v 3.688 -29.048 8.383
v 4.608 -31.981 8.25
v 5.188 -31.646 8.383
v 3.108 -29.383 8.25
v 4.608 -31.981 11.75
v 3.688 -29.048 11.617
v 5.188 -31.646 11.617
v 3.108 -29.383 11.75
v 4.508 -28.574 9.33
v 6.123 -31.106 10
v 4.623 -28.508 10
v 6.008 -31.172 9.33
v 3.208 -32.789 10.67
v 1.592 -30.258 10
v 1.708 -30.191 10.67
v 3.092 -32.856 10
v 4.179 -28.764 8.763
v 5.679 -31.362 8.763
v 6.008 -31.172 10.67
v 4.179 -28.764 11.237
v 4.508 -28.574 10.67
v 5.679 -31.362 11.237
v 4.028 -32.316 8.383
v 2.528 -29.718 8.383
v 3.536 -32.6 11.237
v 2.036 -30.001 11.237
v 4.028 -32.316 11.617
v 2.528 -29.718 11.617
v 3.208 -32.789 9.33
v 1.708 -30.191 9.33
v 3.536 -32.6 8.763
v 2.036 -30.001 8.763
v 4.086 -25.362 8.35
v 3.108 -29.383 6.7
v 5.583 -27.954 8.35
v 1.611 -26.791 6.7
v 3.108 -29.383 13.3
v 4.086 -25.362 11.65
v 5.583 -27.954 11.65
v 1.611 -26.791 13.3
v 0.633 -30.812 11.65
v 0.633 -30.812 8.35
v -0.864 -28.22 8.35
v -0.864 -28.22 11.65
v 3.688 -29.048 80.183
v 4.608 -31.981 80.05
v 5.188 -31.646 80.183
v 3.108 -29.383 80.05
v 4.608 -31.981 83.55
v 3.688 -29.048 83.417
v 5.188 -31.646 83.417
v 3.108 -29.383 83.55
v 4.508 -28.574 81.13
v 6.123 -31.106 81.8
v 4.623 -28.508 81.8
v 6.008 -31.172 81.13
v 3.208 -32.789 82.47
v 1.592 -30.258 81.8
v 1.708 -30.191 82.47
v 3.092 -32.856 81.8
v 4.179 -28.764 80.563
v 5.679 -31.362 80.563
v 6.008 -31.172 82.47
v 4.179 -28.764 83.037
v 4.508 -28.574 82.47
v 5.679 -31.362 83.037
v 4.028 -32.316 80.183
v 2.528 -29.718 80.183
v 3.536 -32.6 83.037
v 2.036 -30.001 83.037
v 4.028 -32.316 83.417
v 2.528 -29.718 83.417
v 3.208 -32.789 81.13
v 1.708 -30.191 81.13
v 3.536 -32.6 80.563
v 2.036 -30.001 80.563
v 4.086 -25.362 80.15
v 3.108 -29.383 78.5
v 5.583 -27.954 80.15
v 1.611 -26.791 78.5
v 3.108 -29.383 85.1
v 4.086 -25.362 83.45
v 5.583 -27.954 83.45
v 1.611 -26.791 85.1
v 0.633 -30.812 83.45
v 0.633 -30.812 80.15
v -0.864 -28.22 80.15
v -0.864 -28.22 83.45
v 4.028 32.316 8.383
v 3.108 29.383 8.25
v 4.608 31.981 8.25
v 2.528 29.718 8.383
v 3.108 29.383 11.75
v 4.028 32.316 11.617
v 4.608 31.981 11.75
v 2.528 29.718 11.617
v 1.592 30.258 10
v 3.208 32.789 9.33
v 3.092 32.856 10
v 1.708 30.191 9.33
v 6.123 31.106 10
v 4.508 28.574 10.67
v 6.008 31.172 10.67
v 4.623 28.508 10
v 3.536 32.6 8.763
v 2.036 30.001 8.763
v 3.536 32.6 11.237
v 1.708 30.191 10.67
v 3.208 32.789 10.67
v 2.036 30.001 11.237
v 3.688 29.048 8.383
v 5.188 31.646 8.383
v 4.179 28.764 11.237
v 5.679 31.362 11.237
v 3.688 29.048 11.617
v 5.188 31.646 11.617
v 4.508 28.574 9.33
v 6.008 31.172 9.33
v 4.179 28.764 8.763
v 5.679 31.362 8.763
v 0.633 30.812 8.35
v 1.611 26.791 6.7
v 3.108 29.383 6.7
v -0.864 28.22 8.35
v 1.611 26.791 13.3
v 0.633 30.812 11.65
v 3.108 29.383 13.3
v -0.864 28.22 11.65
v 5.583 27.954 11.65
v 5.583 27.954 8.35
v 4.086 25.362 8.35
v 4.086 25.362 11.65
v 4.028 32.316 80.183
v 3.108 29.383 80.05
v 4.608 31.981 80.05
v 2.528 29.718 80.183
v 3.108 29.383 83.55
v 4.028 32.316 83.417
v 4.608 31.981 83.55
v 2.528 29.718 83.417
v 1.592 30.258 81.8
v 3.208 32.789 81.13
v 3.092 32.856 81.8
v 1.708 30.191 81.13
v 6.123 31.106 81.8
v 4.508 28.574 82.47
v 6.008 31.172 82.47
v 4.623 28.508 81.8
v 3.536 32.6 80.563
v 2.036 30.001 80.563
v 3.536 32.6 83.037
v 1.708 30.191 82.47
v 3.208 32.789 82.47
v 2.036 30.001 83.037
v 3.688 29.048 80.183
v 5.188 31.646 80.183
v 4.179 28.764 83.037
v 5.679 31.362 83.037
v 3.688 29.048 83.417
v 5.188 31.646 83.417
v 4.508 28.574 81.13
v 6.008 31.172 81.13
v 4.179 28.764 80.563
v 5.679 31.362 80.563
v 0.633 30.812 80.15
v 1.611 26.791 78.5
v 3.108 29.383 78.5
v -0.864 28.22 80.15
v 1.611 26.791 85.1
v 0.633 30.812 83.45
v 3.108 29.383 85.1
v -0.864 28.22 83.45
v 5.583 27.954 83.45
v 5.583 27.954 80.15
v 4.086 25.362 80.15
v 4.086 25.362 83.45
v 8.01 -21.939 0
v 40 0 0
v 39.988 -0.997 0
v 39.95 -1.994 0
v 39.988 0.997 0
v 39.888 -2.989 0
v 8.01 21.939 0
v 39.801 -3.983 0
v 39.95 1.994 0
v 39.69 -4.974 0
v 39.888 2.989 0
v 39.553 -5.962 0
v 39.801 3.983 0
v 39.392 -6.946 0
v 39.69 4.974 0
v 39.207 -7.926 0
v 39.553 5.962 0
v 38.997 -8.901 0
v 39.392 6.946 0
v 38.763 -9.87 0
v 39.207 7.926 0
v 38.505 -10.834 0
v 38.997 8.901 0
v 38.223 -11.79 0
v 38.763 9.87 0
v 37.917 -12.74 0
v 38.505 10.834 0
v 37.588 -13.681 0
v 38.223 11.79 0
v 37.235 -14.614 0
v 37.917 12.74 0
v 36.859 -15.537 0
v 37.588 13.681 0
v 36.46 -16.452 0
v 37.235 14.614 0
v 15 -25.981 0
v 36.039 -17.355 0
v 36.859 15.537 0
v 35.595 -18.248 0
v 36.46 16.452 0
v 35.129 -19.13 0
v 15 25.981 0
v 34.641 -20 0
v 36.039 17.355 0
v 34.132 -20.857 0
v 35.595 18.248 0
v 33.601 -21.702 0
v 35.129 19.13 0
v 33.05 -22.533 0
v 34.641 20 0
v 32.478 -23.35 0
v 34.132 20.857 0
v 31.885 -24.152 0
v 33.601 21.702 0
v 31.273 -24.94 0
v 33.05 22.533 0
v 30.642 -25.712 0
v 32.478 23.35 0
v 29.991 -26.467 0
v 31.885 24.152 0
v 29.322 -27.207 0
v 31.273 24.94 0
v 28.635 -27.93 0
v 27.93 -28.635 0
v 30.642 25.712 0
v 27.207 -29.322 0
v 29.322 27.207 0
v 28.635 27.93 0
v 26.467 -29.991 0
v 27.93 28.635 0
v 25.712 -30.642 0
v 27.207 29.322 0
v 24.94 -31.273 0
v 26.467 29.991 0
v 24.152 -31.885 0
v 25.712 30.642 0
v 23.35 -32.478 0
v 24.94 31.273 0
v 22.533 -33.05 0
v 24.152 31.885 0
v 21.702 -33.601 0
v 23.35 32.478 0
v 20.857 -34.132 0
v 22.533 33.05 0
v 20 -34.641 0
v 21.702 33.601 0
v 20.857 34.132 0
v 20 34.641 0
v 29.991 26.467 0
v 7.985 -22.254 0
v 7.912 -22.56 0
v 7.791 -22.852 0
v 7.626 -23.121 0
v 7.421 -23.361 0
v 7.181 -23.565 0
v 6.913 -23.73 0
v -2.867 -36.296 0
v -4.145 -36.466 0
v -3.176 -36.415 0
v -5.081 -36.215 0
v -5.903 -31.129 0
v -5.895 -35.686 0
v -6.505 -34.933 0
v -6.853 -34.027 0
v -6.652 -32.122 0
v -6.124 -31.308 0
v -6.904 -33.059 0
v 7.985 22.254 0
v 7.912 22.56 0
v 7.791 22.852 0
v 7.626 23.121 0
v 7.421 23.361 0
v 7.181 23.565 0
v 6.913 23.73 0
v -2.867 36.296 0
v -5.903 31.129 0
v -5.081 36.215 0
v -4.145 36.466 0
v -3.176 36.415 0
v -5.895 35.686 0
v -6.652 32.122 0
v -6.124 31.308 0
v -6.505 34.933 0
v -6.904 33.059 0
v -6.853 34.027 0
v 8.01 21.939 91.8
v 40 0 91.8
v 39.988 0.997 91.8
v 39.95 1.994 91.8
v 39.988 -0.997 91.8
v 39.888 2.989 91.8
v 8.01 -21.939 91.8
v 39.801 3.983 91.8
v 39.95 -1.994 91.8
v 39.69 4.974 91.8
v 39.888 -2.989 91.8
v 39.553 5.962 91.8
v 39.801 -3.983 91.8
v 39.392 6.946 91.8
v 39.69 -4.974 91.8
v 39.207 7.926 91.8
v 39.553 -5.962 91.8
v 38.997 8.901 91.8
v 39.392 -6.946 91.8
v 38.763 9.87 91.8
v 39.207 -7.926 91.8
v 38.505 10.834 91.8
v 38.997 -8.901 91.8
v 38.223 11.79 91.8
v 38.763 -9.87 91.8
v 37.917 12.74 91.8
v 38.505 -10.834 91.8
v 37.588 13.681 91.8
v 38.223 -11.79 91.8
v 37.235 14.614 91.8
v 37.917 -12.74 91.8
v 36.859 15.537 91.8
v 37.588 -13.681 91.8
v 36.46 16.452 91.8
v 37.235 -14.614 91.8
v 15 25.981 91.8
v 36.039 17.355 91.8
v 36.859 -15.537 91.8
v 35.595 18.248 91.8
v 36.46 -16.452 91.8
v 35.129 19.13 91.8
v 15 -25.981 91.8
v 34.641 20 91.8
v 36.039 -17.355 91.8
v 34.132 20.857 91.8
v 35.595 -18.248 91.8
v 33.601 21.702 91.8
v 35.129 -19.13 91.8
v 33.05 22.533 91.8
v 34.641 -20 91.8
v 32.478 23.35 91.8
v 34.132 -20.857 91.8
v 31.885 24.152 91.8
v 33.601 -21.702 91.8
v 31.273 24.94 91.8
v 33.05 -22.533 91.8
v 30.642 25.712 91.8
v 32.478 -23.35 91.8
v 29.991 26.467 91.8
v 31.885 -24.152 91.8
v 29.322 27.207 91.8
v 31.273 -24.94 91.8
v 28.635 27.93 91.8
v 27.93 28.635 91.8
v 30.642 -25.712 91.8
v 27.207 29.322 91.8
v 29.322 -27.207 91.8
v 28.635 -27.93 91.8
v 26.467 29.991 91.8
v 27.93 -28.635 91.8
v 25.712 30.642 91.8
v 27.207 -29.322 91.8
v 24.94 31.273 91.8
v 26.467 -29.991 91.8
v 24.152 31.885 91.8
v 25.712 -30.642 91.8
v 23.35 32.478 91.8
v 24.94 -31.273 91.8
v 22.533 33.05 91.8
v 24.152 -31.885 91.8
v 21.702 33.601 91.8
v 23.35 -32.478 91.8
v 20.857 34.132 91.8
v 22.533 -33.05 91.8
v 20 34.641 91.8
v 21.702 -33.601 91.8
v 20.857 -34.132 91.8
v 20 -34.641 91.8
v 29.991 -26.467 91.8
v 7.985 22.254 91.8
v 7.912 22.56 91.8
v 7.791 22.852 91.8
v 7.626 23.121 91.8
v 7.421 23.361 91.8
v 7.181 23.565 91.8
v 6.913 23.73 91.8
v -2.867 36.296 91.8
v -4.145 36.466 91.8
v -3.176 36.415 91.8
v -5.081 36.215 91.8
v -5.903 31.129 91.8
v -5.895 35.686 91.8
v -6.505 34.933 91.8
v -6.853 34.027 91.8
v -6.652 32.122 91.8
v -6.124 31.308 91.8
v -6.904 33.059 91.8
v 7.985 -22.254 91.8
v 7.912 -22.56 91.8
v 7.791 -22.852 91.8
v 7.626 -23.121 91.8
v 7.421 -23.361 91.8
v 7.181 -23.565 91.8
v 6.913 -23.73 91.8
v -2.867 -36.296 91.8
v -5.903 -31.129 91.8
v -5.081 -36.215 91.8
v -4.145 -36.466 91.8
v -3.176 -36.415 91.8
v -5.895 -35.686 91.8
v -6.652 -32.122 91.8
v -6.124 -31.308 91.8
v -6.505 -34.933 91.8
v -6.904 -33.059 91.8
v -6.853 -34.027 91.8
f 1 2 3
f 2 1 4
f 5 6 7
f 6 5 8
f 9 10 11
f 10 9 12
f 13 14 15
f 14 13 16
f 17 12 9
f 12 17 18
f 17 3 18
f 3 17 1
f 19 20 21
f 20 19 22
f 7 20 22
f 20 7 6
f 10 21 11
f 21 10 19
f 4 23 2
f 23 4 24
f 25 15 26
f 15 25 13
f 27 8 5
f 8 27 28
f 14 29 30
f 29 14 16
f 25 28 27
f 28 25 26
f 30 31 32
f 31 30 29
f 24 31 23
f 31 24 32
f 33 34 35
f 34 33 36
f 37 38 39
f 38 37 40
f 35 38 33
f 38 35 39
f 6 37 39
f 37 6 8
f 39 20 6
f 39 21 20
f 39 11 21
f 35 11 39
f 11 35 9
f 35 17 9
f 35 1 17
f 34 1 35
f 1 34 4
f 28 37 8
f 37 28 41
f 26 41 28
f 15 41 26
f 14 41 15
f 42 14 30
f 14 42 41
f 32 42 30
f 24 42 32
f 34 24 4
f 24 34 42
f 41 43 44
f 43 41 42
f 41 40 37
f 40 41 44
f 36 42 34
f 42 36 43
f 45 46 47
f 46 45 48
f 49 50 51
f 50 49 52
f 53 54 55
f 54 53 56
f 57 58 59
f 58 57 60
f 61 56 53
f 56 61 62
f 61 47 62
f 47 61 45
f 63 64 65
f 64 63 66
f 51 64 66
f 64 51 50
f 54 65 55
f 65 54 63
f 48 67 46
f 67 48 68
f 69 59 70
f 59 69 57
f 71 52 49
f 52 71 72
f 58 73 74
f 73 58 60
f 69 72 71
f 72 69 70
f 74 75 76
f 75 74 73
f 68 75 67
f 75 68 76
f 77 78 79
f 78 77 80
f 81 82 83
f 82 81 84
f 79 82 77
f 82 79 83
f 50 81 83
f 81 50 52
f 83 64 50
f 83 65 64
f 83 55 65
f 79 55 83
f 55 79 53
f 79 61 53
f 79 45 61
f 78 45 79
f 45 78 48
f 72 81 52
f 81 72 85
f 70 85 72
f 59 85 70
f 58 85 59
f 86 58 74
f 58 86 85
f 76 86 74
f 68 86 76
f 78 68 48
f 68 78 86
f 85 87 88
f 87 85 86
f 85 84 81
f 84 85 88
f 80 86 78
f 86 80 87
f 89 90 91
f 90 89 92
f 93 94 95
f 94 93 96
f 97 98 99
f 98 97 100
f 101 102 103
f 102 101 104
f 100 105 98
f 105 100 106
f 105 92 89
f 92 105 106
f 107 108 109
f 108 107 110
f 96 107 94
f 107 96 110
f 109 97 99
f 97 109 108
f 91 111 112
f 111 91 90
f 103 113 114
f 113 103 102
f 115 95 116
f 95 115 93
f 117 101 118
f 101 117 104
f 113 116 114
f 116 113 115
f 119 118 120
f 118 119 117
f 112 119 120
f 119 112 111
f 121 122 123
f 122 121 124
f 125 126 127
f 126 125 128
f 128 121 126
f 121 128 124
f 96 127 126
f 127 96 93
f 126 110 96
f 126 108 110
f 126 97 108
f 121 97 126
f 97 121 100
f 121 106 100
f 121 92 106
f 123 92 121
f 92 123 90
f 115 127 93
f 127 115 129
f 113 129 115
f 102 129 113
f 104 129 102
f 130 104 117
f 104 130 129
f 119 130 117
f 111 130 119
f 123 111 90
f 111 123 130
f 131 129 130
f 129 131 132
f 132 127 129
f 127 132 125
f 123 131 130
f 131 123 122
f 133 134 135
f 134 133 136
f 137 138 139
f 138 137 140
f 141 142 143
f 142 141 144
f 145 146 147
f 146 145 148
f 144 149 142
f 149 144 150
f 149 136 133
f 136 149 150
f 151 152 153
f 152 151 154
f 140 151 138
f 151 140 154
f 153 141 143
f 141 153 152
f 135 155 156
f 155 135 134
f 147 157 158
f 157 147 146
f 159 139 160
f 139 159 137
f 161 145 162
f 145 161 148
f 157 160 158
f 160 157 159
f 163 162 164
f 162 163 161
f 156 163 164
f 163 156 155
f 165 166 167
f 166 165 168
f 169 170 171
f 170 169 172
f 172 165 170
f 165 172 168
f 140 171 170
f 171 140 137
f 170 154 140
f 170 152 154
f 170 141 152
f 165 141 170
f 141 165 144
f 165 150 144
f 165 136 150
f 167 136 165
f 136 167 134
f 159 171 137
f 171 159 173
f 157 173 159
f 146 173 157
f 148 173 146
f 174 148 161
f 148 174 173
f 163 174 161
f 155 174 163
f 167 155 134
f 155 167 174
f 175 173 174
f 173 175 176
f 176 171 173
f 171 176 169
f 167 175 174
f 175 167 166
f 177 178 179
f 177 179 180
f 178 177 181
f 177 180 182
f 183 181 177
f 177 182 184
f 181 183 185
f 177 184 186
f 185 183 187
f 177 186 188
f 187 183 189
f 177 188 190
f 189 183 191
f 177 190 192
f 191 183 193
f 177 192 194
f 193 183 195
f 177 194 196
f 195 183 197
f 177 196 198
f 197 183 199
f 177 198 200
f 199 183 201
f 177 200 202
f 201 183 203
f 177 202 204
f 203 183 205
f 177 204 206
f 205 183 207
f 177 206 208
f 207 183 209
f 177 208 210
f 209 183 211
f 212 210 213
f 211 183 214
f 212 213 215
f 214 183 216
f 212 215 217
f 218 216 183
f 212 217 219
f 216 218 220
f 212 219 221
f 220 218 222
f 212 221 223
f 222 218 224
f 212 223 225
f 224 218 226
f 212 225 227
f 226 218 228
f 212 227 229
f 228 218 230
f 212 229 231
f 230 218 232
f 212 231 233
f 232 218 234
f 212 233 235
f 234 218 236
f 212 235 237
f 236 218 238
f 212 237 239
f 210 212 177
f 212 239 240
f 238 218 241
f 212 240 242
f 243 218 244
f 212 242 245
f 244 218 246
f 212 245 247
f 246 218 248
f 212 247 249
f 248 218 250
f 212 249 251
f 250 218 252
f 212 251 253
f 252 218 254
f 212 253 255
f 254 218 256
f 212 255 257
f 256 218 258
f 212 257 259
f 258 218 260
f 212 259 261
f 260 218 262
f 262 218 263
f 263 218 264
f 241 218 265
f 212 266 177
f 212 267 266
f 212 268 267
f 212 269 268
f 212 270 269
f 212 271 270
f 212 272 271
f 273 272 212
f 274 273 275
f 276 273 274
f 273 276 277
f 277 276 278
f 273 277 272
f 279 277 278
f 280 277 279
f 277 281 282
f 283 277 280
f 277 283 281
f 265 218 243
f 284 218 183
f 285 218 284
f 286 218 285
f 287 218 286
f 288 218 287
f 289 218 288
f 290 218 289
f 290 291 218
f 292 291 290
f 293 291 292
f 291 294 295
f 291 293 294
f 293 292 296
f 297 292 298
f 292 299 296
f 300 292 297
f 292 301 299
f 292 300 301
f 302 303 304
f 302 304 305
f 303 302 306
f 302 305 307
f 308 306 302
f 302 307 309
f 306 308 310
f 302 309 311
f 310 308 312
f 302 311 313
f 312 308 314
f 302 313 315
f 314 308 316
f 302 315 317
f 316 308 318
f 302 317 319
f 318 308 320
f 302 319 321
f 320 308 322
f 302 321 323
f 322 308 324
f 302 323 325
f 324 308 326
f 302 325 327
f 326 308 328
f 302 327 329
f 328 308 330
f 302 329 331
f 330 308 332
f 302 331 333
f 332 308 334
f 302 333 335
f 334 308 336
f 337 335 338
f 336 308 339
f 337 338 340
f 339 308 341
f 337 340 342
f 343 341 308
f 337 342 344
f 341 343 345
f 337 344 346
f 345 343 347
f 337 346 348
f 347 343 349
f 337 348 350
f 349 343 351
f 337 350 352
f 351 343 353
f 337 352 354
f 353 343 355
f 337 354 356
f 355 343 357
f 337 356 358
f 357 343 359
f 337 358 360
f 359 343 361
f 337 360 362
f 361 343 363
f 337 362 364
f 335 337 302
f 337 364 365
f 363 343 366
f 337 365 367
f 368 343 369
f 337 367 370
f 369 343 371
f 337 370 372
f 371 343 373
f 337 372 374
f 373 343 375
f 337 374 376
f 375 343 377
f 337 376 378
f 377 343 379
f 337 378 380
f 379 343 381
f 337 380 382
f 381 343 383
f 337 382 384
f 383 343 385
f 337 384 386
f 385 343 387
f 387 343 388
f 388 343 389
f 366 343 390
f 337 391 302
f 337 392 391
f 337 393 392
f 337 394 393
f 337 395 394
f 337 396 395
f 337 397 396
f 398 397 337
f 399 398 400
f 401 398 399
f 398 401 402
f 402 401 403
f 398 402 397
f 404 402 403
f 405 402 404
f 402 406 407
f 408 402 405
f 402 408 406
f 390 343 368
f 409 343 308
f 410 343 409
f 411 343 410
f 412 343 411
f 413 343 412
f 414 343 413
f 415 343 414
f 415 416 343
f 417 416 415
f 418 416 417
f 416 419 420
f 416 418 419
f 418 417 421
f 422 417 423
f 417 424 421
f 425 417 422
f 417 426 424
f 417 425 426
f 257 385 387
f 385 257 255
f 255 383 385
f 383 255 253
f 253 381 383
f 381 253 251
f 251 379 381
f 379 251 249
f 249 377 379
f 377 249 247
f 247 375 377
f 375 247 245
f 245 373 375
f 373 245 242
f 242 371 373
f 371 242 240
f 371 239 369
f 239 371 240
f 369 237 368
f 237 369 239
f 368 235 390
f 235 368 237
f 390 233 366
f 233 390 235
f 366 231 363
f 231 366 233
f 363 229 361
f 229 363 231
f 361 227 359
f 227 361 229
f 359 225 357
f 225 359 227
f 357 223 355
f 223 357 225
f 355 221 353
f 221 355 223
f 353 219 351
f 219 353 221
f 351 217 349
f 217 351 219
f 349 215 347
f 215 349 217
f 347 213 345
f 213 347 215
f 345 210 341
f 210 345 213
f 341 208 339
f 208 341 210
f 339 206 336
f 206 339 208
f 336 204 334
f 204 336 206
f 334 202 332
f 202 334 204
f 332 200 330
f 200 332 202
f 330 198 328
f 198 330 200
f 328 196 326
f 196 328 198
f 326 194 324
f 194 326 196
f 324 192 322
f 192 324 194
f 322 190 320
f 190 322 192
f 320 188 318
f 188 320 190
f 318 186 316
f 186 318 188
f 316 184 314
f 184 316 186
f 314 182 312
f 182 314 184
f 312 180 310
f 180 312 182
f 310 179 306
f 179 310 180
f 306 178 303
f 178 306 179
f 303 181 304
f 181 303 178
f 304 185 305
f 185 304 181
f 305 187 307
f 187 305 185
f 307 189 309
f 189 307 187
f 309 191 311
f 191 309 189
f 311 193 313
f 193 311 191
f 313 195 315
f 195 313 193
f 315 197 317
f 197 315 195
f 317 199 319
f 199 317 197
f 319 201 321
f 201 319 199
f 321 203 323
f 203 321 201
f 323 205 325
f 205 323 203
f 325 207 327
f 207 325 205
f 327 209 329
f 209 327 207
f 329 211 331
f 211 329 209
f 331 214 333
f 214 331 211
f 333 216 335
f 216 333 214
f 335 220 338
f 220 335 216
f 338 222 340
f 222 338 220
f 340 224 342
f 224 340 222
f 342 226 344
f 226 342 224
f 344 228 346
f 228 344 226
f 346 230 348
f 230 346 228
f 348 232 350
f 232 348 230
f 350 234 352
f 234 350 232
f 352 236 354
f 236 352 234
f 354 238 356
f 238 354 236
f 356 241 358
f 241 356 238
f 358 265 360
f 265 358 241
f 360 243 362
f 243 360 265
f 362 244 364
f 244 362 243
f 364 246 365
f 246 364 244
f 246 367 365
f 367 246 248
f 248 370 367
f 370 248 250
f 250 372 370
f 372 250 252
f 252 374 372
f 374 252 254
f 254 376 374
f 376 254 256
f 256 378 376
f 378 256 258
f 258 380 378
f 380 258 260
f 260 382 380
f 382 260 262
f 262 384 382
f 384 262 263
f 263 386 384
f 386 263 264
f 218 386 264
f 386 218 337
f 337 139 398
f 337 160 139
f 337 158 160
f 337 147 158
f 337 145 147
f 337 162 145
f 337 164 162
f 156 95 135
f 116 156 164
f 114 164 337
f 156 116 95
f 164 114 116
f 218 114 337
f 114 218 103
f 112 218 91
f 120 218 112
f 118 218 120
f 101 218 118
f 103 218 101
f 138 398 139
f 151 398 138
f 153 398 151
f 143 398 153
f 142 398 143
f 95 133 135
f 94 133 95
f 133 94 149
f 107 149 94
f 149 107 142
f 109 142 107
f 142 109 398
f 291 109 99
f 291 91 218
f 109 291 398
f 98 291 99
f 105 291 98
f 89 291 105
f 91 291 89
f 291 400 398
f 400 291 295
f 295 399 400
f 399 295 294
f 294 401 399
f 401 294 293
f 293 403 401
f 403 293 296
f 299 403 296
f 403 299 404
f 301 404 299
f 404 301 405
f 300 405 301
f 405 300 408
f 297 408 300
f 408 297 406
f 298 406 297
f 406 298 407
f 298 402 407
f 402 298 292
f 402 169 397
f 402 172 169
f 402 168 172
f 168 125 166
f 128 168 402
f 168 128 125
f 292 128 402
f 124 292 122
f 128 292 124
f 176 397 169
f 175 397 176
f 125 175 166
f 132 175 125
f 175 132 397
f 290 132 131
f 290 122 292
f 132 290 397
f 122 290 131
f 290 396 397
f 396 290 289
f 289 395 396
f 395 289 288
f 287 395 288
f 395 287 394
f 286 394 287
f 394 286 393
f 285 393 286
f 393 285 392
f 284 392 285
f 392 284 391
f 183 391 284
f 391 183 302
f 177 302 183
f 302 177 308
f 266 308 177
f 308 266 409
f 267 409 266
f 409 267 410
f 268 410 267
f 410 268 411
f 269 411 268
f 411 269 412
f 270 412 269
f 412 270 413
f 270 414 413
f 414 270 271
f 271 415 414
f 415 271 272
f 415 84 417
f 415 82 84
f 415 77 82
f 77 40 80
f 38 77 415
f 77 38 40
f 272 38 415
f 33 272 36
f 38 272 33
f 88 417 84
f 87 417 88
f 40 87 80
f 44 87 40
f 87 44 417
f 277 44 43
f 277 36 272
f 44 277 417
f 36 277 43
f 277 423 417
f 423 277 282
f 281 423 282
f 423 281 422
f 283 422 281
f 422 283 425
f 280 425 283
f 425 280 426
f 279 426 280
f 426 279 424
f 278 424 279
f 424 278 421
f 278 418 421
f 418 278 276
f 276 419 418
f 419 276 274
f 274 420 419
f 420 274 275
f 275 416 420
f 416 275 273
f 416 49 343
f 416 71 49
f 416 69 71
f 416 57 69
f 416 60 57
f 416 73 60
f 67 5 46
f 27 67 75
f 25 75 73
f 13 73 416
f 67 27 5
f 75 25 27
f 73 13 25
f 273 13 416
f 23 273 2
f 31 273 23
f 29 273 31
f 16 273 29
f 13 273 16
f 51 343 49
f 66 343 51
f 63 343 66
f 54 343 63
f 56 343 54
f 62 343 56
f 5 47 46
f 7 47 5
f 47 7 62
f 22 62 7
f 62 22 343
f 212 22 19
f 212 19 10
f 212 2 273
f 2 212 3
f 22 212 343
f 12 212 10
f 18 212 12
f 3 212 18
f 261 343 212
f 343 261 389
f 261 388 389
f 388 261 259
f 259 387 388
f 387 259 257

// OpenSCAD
// file: config.scad
//triangular vertex peices
$fa=1;
$fs=1;
ep=0.01;
//parametrics
//cutout for the AL extrusions, with 2 opposite tracks having an inset
//tweaked from ideal to satisfy printing limits
side=20;    //size of a side of the extrusion
slot=6-.4;     //width of the slots, on the face
central=8+1;  //how wide the central pillar is; the slot depth is then (side-central)/2
//corner radius
vertex_rad=40;
//distance from edge to vertical 2020 shaft
vert_inset=6;
//thickness of the wall on the inside of the triangle
inside_wall_thick=6;
//belt channel width
channel_width=26;
//lenght of plastic alongside in-plane extrusion
wing_length=70;
//height of the frame piece
piece_h=50;
//mounting hardware
m5_slot=6;
m5_head=10; //diameter of M5 head
m5_wall=5; //thickness of plastic between M5 and extrusion
//m3 sizing
m3_slot=3.5;
m3nut_r=6.6/2;
m3nut_t=3;
module 2020_cutout_two()
{
    ss=side+.8; //printer tolerance
    difference()
    {
        //main body
        square([ss,ss],center=true);
        //track slots
        translate([ss/2+central/2,0])square([ss,slot],center=true);
        translate([-(ss/2+central/2),0])square([ss,slot],center=true);
        translate([0,(ss/2+central/2)])square([slot,ss],center=true);
    }
}
module nut_fill()
{
    nut_w=10.5+1;
    nut_w_b=6.5+1.5;
    nut_depth=(side-central)/2;
    //spaces for inserting the t slot nuts
    //translate([0,0,-nut_depth/2])
    hull()
    {
        cube([nut_w+3,nut_w*2,ep],center=true);
        translate([0,0,-nut_depth])cube([nut_w_b,nut_w*2,ep],center=true);
    }
    //cube([nut_w,nut_w*2,nut_depth],center=true);
}
module base_shape()
{
    difference()
    {
        union()
        {
            //rounded vertex
            circle(r=vertex_rad,center=true);
            //'wings' along in plane extrusion lengths
            rotate([0,0,60])translate([-side+vertex_rad-inside_wall_thick*2,wing_length/2])square([inside_wall_thick*4,wing_length],center=true); 
            rotate([0,0,-60])translate([-side+vertex_rad-inside_wall_thick*2,-wing_length/2])square([inside_wall_thick*4,wing_length],center=true); 
        }
        //in plane extrusions
        rotate([0,0,60])translate([-side/2+vertex_rad,vertex_rad/2])square([side,vertex_rad],center=true);
        rotate([0,0,-60])translate([-side/2+vertex_rad,-vertex_rad/2])square([side,vertex_rad],center=true);
        //vertical extrusion
        translate([(-side/2)+vertex_rad-vert_inset,0,0])rotate([0,0,90])2020_cutout_two();
        //opening for belts or motor
        motor_gap();
        //any remaining portion of hte circle we want removed
        open_inside();
    }
}
module motor_gap()
{
    //create rough triangle of unneeded area
    round=2;
    xx=-side-inside_wall_thick-round;
    qq=-(channel_width)/2+vertex_rad-vert_inset-side-inside_wall_thick;
    //make round
    minkowski()
    {
        intersection()
        {
            rotate([0,0,60])translate([xx,0])square([vertex_rad*2,vertex_rad*4],center=true);
            rotate([0,0,-60])translate([xx,0])square([vertex_rad*2,vertex_rad*4],center=true);
            translate([qq,0])square([channel_width-round*2,vertex_rad*2],center=true);
        }
        circle(r=round+0.01,$fn=40);
    }
}
module open_inside()
{
    //rest of interior
    //create rough triangle of unneeded area
    round=2;
    xx=-side-inside_wall_thick-round;
    qq=-side-inside_wall_thick-vert_inset-channel_width-inside_wall_thick;
    //make round
    minkowski()
    {
        intersection()
        {
            rotate([0,0,60])translate([xx,wing_length])square([vertex_rad*2,vertex_rad*4+wing_length],center=true);
            rotate([0,0,-60])translate([xx,-wing_length])square([vertex_rad*2,vertex_rad*4+wing_length],center=true);
            translate([qq,0])square([vertex_rad*2-round*2,vertex_rad*2+wing_length],center=true);
        }
        circle(r=round+0.01,$fn=40);
    }
}
// main file
include <config.scad>;

atx_height=86.6;
atx_width=150;
atx_depth=140;
vertical_buffer=5.2; //2.6 above and below atx box

atx_upper_screw_spacing=138;

atx_upper_screw_height=80;

grid_wall_thick=10;

wall_screw_vert=10;
wall_screw_horz=12;

module post_corner()
{
    difference()
    {
        union()
        {
            //rounded vertex
            circle(r=vertex_rad,center=true);          
        }
        //in plane extrusions
        rotate([0,0,60])translate([-grid_wall_thick/2+vertex_rad,vertex_rad/2])square([grid_wall_thick,vertex_rad],center=true);
        rotate([0,0,-60])translate([-grid_wall_thick/2+vertex_rad,-vertex_rad/2])square([grid_wall_thick,vertex_rad],center=true);
        post_gap();
        //round the ends
        difference()
        {
            rotate([0,0,60])translate([-grid_wall_thick-inside_wall_thick/2+vertex_rad,vertex_rad/2])translate([0,10+inside_wall_thick/2])square([inside_wall_thick+.1,20+inside_wall_thick+.1],center=true);
            rotate([0,0,60])translate([-grid_wall_thick-inside_wall_thick/2+vertex_rad,vertex_rad/2])circle(r=inside_wall_thick/2+.1);
        }
        difference()
        {
            rotate([0,0,-60])translate([-grid_wall_thick-inside_wall_thick/2+vertex_rad,-vertex_rad/2])translate([0,-(10+inside_wall_thick/2)])square([inside_wall_thick+.1,20+inside_wall_thick+.1],center=true);
            rotate([0,0,-60])translate([-grid_wall_thick-inside_wall_thick/2+vertex_rad,-vertex_rad/2])circle(r=inside_wall_thick/2+.1);
        }
    }
}


module post_gap()
{
    //create rough triangle of unneeded area
    round=2;
    xx=-grid_wall_thick-inside_wall_thick-round;
    qq=-(vertex_rad*2)/2+vertex_rad-vert_inset-side-inside_wall_thick;
    //make round
    minkowski()
    {
        intersection()
        {
            rotate([0,0,60])translate([xx,0])square([vertex_rad*2,vertex_rad*4],center=true);
            rotate([0,0,-60])translate([xx,0])square([vertex_rad*2,vertex_rad*4],center=true);
            translate([qq,0])square([vertex_rad*2-round*2,vertex_rad*2],center=true);
        }
        circle(r=round+0.01,$fn=40);
    }
}
module m3hole()
{
    rotate([0,90,0])
    {
        cylinder(r=m3_slot/2,h=20,$fn=16);
        cylinder(r=m3nut_r,h=m3nut_t,$fn=6);
    }
}
difference()
{

linear_extrude(height=atx_height+vertical_buffer)post_corner();
    //m3 mounting holes
rotate([0,0,-60])translate([vertex_rad-inside_wall_thick-grid_wall_thick,-wall_screw_horz,0])
    {   
        translate([0,0,wall_screw_vert])m3hole();
        translate([0,0,atx_height+vertical_buffer-wall_screw_vert])m3hole();
    }
rotate([0,0,60])translate([vertex_rad-inside_wall_thick-grid_wall_thick,wall_screw_horz,0])
    {   
        translate([0,0,wall_screw_vert])m3hole();
        translate([0,0,atx_height+vertical_buffer-wall_screw_vert])m3hole();
    }
}

//%translate([0,0,2])base_shape();
